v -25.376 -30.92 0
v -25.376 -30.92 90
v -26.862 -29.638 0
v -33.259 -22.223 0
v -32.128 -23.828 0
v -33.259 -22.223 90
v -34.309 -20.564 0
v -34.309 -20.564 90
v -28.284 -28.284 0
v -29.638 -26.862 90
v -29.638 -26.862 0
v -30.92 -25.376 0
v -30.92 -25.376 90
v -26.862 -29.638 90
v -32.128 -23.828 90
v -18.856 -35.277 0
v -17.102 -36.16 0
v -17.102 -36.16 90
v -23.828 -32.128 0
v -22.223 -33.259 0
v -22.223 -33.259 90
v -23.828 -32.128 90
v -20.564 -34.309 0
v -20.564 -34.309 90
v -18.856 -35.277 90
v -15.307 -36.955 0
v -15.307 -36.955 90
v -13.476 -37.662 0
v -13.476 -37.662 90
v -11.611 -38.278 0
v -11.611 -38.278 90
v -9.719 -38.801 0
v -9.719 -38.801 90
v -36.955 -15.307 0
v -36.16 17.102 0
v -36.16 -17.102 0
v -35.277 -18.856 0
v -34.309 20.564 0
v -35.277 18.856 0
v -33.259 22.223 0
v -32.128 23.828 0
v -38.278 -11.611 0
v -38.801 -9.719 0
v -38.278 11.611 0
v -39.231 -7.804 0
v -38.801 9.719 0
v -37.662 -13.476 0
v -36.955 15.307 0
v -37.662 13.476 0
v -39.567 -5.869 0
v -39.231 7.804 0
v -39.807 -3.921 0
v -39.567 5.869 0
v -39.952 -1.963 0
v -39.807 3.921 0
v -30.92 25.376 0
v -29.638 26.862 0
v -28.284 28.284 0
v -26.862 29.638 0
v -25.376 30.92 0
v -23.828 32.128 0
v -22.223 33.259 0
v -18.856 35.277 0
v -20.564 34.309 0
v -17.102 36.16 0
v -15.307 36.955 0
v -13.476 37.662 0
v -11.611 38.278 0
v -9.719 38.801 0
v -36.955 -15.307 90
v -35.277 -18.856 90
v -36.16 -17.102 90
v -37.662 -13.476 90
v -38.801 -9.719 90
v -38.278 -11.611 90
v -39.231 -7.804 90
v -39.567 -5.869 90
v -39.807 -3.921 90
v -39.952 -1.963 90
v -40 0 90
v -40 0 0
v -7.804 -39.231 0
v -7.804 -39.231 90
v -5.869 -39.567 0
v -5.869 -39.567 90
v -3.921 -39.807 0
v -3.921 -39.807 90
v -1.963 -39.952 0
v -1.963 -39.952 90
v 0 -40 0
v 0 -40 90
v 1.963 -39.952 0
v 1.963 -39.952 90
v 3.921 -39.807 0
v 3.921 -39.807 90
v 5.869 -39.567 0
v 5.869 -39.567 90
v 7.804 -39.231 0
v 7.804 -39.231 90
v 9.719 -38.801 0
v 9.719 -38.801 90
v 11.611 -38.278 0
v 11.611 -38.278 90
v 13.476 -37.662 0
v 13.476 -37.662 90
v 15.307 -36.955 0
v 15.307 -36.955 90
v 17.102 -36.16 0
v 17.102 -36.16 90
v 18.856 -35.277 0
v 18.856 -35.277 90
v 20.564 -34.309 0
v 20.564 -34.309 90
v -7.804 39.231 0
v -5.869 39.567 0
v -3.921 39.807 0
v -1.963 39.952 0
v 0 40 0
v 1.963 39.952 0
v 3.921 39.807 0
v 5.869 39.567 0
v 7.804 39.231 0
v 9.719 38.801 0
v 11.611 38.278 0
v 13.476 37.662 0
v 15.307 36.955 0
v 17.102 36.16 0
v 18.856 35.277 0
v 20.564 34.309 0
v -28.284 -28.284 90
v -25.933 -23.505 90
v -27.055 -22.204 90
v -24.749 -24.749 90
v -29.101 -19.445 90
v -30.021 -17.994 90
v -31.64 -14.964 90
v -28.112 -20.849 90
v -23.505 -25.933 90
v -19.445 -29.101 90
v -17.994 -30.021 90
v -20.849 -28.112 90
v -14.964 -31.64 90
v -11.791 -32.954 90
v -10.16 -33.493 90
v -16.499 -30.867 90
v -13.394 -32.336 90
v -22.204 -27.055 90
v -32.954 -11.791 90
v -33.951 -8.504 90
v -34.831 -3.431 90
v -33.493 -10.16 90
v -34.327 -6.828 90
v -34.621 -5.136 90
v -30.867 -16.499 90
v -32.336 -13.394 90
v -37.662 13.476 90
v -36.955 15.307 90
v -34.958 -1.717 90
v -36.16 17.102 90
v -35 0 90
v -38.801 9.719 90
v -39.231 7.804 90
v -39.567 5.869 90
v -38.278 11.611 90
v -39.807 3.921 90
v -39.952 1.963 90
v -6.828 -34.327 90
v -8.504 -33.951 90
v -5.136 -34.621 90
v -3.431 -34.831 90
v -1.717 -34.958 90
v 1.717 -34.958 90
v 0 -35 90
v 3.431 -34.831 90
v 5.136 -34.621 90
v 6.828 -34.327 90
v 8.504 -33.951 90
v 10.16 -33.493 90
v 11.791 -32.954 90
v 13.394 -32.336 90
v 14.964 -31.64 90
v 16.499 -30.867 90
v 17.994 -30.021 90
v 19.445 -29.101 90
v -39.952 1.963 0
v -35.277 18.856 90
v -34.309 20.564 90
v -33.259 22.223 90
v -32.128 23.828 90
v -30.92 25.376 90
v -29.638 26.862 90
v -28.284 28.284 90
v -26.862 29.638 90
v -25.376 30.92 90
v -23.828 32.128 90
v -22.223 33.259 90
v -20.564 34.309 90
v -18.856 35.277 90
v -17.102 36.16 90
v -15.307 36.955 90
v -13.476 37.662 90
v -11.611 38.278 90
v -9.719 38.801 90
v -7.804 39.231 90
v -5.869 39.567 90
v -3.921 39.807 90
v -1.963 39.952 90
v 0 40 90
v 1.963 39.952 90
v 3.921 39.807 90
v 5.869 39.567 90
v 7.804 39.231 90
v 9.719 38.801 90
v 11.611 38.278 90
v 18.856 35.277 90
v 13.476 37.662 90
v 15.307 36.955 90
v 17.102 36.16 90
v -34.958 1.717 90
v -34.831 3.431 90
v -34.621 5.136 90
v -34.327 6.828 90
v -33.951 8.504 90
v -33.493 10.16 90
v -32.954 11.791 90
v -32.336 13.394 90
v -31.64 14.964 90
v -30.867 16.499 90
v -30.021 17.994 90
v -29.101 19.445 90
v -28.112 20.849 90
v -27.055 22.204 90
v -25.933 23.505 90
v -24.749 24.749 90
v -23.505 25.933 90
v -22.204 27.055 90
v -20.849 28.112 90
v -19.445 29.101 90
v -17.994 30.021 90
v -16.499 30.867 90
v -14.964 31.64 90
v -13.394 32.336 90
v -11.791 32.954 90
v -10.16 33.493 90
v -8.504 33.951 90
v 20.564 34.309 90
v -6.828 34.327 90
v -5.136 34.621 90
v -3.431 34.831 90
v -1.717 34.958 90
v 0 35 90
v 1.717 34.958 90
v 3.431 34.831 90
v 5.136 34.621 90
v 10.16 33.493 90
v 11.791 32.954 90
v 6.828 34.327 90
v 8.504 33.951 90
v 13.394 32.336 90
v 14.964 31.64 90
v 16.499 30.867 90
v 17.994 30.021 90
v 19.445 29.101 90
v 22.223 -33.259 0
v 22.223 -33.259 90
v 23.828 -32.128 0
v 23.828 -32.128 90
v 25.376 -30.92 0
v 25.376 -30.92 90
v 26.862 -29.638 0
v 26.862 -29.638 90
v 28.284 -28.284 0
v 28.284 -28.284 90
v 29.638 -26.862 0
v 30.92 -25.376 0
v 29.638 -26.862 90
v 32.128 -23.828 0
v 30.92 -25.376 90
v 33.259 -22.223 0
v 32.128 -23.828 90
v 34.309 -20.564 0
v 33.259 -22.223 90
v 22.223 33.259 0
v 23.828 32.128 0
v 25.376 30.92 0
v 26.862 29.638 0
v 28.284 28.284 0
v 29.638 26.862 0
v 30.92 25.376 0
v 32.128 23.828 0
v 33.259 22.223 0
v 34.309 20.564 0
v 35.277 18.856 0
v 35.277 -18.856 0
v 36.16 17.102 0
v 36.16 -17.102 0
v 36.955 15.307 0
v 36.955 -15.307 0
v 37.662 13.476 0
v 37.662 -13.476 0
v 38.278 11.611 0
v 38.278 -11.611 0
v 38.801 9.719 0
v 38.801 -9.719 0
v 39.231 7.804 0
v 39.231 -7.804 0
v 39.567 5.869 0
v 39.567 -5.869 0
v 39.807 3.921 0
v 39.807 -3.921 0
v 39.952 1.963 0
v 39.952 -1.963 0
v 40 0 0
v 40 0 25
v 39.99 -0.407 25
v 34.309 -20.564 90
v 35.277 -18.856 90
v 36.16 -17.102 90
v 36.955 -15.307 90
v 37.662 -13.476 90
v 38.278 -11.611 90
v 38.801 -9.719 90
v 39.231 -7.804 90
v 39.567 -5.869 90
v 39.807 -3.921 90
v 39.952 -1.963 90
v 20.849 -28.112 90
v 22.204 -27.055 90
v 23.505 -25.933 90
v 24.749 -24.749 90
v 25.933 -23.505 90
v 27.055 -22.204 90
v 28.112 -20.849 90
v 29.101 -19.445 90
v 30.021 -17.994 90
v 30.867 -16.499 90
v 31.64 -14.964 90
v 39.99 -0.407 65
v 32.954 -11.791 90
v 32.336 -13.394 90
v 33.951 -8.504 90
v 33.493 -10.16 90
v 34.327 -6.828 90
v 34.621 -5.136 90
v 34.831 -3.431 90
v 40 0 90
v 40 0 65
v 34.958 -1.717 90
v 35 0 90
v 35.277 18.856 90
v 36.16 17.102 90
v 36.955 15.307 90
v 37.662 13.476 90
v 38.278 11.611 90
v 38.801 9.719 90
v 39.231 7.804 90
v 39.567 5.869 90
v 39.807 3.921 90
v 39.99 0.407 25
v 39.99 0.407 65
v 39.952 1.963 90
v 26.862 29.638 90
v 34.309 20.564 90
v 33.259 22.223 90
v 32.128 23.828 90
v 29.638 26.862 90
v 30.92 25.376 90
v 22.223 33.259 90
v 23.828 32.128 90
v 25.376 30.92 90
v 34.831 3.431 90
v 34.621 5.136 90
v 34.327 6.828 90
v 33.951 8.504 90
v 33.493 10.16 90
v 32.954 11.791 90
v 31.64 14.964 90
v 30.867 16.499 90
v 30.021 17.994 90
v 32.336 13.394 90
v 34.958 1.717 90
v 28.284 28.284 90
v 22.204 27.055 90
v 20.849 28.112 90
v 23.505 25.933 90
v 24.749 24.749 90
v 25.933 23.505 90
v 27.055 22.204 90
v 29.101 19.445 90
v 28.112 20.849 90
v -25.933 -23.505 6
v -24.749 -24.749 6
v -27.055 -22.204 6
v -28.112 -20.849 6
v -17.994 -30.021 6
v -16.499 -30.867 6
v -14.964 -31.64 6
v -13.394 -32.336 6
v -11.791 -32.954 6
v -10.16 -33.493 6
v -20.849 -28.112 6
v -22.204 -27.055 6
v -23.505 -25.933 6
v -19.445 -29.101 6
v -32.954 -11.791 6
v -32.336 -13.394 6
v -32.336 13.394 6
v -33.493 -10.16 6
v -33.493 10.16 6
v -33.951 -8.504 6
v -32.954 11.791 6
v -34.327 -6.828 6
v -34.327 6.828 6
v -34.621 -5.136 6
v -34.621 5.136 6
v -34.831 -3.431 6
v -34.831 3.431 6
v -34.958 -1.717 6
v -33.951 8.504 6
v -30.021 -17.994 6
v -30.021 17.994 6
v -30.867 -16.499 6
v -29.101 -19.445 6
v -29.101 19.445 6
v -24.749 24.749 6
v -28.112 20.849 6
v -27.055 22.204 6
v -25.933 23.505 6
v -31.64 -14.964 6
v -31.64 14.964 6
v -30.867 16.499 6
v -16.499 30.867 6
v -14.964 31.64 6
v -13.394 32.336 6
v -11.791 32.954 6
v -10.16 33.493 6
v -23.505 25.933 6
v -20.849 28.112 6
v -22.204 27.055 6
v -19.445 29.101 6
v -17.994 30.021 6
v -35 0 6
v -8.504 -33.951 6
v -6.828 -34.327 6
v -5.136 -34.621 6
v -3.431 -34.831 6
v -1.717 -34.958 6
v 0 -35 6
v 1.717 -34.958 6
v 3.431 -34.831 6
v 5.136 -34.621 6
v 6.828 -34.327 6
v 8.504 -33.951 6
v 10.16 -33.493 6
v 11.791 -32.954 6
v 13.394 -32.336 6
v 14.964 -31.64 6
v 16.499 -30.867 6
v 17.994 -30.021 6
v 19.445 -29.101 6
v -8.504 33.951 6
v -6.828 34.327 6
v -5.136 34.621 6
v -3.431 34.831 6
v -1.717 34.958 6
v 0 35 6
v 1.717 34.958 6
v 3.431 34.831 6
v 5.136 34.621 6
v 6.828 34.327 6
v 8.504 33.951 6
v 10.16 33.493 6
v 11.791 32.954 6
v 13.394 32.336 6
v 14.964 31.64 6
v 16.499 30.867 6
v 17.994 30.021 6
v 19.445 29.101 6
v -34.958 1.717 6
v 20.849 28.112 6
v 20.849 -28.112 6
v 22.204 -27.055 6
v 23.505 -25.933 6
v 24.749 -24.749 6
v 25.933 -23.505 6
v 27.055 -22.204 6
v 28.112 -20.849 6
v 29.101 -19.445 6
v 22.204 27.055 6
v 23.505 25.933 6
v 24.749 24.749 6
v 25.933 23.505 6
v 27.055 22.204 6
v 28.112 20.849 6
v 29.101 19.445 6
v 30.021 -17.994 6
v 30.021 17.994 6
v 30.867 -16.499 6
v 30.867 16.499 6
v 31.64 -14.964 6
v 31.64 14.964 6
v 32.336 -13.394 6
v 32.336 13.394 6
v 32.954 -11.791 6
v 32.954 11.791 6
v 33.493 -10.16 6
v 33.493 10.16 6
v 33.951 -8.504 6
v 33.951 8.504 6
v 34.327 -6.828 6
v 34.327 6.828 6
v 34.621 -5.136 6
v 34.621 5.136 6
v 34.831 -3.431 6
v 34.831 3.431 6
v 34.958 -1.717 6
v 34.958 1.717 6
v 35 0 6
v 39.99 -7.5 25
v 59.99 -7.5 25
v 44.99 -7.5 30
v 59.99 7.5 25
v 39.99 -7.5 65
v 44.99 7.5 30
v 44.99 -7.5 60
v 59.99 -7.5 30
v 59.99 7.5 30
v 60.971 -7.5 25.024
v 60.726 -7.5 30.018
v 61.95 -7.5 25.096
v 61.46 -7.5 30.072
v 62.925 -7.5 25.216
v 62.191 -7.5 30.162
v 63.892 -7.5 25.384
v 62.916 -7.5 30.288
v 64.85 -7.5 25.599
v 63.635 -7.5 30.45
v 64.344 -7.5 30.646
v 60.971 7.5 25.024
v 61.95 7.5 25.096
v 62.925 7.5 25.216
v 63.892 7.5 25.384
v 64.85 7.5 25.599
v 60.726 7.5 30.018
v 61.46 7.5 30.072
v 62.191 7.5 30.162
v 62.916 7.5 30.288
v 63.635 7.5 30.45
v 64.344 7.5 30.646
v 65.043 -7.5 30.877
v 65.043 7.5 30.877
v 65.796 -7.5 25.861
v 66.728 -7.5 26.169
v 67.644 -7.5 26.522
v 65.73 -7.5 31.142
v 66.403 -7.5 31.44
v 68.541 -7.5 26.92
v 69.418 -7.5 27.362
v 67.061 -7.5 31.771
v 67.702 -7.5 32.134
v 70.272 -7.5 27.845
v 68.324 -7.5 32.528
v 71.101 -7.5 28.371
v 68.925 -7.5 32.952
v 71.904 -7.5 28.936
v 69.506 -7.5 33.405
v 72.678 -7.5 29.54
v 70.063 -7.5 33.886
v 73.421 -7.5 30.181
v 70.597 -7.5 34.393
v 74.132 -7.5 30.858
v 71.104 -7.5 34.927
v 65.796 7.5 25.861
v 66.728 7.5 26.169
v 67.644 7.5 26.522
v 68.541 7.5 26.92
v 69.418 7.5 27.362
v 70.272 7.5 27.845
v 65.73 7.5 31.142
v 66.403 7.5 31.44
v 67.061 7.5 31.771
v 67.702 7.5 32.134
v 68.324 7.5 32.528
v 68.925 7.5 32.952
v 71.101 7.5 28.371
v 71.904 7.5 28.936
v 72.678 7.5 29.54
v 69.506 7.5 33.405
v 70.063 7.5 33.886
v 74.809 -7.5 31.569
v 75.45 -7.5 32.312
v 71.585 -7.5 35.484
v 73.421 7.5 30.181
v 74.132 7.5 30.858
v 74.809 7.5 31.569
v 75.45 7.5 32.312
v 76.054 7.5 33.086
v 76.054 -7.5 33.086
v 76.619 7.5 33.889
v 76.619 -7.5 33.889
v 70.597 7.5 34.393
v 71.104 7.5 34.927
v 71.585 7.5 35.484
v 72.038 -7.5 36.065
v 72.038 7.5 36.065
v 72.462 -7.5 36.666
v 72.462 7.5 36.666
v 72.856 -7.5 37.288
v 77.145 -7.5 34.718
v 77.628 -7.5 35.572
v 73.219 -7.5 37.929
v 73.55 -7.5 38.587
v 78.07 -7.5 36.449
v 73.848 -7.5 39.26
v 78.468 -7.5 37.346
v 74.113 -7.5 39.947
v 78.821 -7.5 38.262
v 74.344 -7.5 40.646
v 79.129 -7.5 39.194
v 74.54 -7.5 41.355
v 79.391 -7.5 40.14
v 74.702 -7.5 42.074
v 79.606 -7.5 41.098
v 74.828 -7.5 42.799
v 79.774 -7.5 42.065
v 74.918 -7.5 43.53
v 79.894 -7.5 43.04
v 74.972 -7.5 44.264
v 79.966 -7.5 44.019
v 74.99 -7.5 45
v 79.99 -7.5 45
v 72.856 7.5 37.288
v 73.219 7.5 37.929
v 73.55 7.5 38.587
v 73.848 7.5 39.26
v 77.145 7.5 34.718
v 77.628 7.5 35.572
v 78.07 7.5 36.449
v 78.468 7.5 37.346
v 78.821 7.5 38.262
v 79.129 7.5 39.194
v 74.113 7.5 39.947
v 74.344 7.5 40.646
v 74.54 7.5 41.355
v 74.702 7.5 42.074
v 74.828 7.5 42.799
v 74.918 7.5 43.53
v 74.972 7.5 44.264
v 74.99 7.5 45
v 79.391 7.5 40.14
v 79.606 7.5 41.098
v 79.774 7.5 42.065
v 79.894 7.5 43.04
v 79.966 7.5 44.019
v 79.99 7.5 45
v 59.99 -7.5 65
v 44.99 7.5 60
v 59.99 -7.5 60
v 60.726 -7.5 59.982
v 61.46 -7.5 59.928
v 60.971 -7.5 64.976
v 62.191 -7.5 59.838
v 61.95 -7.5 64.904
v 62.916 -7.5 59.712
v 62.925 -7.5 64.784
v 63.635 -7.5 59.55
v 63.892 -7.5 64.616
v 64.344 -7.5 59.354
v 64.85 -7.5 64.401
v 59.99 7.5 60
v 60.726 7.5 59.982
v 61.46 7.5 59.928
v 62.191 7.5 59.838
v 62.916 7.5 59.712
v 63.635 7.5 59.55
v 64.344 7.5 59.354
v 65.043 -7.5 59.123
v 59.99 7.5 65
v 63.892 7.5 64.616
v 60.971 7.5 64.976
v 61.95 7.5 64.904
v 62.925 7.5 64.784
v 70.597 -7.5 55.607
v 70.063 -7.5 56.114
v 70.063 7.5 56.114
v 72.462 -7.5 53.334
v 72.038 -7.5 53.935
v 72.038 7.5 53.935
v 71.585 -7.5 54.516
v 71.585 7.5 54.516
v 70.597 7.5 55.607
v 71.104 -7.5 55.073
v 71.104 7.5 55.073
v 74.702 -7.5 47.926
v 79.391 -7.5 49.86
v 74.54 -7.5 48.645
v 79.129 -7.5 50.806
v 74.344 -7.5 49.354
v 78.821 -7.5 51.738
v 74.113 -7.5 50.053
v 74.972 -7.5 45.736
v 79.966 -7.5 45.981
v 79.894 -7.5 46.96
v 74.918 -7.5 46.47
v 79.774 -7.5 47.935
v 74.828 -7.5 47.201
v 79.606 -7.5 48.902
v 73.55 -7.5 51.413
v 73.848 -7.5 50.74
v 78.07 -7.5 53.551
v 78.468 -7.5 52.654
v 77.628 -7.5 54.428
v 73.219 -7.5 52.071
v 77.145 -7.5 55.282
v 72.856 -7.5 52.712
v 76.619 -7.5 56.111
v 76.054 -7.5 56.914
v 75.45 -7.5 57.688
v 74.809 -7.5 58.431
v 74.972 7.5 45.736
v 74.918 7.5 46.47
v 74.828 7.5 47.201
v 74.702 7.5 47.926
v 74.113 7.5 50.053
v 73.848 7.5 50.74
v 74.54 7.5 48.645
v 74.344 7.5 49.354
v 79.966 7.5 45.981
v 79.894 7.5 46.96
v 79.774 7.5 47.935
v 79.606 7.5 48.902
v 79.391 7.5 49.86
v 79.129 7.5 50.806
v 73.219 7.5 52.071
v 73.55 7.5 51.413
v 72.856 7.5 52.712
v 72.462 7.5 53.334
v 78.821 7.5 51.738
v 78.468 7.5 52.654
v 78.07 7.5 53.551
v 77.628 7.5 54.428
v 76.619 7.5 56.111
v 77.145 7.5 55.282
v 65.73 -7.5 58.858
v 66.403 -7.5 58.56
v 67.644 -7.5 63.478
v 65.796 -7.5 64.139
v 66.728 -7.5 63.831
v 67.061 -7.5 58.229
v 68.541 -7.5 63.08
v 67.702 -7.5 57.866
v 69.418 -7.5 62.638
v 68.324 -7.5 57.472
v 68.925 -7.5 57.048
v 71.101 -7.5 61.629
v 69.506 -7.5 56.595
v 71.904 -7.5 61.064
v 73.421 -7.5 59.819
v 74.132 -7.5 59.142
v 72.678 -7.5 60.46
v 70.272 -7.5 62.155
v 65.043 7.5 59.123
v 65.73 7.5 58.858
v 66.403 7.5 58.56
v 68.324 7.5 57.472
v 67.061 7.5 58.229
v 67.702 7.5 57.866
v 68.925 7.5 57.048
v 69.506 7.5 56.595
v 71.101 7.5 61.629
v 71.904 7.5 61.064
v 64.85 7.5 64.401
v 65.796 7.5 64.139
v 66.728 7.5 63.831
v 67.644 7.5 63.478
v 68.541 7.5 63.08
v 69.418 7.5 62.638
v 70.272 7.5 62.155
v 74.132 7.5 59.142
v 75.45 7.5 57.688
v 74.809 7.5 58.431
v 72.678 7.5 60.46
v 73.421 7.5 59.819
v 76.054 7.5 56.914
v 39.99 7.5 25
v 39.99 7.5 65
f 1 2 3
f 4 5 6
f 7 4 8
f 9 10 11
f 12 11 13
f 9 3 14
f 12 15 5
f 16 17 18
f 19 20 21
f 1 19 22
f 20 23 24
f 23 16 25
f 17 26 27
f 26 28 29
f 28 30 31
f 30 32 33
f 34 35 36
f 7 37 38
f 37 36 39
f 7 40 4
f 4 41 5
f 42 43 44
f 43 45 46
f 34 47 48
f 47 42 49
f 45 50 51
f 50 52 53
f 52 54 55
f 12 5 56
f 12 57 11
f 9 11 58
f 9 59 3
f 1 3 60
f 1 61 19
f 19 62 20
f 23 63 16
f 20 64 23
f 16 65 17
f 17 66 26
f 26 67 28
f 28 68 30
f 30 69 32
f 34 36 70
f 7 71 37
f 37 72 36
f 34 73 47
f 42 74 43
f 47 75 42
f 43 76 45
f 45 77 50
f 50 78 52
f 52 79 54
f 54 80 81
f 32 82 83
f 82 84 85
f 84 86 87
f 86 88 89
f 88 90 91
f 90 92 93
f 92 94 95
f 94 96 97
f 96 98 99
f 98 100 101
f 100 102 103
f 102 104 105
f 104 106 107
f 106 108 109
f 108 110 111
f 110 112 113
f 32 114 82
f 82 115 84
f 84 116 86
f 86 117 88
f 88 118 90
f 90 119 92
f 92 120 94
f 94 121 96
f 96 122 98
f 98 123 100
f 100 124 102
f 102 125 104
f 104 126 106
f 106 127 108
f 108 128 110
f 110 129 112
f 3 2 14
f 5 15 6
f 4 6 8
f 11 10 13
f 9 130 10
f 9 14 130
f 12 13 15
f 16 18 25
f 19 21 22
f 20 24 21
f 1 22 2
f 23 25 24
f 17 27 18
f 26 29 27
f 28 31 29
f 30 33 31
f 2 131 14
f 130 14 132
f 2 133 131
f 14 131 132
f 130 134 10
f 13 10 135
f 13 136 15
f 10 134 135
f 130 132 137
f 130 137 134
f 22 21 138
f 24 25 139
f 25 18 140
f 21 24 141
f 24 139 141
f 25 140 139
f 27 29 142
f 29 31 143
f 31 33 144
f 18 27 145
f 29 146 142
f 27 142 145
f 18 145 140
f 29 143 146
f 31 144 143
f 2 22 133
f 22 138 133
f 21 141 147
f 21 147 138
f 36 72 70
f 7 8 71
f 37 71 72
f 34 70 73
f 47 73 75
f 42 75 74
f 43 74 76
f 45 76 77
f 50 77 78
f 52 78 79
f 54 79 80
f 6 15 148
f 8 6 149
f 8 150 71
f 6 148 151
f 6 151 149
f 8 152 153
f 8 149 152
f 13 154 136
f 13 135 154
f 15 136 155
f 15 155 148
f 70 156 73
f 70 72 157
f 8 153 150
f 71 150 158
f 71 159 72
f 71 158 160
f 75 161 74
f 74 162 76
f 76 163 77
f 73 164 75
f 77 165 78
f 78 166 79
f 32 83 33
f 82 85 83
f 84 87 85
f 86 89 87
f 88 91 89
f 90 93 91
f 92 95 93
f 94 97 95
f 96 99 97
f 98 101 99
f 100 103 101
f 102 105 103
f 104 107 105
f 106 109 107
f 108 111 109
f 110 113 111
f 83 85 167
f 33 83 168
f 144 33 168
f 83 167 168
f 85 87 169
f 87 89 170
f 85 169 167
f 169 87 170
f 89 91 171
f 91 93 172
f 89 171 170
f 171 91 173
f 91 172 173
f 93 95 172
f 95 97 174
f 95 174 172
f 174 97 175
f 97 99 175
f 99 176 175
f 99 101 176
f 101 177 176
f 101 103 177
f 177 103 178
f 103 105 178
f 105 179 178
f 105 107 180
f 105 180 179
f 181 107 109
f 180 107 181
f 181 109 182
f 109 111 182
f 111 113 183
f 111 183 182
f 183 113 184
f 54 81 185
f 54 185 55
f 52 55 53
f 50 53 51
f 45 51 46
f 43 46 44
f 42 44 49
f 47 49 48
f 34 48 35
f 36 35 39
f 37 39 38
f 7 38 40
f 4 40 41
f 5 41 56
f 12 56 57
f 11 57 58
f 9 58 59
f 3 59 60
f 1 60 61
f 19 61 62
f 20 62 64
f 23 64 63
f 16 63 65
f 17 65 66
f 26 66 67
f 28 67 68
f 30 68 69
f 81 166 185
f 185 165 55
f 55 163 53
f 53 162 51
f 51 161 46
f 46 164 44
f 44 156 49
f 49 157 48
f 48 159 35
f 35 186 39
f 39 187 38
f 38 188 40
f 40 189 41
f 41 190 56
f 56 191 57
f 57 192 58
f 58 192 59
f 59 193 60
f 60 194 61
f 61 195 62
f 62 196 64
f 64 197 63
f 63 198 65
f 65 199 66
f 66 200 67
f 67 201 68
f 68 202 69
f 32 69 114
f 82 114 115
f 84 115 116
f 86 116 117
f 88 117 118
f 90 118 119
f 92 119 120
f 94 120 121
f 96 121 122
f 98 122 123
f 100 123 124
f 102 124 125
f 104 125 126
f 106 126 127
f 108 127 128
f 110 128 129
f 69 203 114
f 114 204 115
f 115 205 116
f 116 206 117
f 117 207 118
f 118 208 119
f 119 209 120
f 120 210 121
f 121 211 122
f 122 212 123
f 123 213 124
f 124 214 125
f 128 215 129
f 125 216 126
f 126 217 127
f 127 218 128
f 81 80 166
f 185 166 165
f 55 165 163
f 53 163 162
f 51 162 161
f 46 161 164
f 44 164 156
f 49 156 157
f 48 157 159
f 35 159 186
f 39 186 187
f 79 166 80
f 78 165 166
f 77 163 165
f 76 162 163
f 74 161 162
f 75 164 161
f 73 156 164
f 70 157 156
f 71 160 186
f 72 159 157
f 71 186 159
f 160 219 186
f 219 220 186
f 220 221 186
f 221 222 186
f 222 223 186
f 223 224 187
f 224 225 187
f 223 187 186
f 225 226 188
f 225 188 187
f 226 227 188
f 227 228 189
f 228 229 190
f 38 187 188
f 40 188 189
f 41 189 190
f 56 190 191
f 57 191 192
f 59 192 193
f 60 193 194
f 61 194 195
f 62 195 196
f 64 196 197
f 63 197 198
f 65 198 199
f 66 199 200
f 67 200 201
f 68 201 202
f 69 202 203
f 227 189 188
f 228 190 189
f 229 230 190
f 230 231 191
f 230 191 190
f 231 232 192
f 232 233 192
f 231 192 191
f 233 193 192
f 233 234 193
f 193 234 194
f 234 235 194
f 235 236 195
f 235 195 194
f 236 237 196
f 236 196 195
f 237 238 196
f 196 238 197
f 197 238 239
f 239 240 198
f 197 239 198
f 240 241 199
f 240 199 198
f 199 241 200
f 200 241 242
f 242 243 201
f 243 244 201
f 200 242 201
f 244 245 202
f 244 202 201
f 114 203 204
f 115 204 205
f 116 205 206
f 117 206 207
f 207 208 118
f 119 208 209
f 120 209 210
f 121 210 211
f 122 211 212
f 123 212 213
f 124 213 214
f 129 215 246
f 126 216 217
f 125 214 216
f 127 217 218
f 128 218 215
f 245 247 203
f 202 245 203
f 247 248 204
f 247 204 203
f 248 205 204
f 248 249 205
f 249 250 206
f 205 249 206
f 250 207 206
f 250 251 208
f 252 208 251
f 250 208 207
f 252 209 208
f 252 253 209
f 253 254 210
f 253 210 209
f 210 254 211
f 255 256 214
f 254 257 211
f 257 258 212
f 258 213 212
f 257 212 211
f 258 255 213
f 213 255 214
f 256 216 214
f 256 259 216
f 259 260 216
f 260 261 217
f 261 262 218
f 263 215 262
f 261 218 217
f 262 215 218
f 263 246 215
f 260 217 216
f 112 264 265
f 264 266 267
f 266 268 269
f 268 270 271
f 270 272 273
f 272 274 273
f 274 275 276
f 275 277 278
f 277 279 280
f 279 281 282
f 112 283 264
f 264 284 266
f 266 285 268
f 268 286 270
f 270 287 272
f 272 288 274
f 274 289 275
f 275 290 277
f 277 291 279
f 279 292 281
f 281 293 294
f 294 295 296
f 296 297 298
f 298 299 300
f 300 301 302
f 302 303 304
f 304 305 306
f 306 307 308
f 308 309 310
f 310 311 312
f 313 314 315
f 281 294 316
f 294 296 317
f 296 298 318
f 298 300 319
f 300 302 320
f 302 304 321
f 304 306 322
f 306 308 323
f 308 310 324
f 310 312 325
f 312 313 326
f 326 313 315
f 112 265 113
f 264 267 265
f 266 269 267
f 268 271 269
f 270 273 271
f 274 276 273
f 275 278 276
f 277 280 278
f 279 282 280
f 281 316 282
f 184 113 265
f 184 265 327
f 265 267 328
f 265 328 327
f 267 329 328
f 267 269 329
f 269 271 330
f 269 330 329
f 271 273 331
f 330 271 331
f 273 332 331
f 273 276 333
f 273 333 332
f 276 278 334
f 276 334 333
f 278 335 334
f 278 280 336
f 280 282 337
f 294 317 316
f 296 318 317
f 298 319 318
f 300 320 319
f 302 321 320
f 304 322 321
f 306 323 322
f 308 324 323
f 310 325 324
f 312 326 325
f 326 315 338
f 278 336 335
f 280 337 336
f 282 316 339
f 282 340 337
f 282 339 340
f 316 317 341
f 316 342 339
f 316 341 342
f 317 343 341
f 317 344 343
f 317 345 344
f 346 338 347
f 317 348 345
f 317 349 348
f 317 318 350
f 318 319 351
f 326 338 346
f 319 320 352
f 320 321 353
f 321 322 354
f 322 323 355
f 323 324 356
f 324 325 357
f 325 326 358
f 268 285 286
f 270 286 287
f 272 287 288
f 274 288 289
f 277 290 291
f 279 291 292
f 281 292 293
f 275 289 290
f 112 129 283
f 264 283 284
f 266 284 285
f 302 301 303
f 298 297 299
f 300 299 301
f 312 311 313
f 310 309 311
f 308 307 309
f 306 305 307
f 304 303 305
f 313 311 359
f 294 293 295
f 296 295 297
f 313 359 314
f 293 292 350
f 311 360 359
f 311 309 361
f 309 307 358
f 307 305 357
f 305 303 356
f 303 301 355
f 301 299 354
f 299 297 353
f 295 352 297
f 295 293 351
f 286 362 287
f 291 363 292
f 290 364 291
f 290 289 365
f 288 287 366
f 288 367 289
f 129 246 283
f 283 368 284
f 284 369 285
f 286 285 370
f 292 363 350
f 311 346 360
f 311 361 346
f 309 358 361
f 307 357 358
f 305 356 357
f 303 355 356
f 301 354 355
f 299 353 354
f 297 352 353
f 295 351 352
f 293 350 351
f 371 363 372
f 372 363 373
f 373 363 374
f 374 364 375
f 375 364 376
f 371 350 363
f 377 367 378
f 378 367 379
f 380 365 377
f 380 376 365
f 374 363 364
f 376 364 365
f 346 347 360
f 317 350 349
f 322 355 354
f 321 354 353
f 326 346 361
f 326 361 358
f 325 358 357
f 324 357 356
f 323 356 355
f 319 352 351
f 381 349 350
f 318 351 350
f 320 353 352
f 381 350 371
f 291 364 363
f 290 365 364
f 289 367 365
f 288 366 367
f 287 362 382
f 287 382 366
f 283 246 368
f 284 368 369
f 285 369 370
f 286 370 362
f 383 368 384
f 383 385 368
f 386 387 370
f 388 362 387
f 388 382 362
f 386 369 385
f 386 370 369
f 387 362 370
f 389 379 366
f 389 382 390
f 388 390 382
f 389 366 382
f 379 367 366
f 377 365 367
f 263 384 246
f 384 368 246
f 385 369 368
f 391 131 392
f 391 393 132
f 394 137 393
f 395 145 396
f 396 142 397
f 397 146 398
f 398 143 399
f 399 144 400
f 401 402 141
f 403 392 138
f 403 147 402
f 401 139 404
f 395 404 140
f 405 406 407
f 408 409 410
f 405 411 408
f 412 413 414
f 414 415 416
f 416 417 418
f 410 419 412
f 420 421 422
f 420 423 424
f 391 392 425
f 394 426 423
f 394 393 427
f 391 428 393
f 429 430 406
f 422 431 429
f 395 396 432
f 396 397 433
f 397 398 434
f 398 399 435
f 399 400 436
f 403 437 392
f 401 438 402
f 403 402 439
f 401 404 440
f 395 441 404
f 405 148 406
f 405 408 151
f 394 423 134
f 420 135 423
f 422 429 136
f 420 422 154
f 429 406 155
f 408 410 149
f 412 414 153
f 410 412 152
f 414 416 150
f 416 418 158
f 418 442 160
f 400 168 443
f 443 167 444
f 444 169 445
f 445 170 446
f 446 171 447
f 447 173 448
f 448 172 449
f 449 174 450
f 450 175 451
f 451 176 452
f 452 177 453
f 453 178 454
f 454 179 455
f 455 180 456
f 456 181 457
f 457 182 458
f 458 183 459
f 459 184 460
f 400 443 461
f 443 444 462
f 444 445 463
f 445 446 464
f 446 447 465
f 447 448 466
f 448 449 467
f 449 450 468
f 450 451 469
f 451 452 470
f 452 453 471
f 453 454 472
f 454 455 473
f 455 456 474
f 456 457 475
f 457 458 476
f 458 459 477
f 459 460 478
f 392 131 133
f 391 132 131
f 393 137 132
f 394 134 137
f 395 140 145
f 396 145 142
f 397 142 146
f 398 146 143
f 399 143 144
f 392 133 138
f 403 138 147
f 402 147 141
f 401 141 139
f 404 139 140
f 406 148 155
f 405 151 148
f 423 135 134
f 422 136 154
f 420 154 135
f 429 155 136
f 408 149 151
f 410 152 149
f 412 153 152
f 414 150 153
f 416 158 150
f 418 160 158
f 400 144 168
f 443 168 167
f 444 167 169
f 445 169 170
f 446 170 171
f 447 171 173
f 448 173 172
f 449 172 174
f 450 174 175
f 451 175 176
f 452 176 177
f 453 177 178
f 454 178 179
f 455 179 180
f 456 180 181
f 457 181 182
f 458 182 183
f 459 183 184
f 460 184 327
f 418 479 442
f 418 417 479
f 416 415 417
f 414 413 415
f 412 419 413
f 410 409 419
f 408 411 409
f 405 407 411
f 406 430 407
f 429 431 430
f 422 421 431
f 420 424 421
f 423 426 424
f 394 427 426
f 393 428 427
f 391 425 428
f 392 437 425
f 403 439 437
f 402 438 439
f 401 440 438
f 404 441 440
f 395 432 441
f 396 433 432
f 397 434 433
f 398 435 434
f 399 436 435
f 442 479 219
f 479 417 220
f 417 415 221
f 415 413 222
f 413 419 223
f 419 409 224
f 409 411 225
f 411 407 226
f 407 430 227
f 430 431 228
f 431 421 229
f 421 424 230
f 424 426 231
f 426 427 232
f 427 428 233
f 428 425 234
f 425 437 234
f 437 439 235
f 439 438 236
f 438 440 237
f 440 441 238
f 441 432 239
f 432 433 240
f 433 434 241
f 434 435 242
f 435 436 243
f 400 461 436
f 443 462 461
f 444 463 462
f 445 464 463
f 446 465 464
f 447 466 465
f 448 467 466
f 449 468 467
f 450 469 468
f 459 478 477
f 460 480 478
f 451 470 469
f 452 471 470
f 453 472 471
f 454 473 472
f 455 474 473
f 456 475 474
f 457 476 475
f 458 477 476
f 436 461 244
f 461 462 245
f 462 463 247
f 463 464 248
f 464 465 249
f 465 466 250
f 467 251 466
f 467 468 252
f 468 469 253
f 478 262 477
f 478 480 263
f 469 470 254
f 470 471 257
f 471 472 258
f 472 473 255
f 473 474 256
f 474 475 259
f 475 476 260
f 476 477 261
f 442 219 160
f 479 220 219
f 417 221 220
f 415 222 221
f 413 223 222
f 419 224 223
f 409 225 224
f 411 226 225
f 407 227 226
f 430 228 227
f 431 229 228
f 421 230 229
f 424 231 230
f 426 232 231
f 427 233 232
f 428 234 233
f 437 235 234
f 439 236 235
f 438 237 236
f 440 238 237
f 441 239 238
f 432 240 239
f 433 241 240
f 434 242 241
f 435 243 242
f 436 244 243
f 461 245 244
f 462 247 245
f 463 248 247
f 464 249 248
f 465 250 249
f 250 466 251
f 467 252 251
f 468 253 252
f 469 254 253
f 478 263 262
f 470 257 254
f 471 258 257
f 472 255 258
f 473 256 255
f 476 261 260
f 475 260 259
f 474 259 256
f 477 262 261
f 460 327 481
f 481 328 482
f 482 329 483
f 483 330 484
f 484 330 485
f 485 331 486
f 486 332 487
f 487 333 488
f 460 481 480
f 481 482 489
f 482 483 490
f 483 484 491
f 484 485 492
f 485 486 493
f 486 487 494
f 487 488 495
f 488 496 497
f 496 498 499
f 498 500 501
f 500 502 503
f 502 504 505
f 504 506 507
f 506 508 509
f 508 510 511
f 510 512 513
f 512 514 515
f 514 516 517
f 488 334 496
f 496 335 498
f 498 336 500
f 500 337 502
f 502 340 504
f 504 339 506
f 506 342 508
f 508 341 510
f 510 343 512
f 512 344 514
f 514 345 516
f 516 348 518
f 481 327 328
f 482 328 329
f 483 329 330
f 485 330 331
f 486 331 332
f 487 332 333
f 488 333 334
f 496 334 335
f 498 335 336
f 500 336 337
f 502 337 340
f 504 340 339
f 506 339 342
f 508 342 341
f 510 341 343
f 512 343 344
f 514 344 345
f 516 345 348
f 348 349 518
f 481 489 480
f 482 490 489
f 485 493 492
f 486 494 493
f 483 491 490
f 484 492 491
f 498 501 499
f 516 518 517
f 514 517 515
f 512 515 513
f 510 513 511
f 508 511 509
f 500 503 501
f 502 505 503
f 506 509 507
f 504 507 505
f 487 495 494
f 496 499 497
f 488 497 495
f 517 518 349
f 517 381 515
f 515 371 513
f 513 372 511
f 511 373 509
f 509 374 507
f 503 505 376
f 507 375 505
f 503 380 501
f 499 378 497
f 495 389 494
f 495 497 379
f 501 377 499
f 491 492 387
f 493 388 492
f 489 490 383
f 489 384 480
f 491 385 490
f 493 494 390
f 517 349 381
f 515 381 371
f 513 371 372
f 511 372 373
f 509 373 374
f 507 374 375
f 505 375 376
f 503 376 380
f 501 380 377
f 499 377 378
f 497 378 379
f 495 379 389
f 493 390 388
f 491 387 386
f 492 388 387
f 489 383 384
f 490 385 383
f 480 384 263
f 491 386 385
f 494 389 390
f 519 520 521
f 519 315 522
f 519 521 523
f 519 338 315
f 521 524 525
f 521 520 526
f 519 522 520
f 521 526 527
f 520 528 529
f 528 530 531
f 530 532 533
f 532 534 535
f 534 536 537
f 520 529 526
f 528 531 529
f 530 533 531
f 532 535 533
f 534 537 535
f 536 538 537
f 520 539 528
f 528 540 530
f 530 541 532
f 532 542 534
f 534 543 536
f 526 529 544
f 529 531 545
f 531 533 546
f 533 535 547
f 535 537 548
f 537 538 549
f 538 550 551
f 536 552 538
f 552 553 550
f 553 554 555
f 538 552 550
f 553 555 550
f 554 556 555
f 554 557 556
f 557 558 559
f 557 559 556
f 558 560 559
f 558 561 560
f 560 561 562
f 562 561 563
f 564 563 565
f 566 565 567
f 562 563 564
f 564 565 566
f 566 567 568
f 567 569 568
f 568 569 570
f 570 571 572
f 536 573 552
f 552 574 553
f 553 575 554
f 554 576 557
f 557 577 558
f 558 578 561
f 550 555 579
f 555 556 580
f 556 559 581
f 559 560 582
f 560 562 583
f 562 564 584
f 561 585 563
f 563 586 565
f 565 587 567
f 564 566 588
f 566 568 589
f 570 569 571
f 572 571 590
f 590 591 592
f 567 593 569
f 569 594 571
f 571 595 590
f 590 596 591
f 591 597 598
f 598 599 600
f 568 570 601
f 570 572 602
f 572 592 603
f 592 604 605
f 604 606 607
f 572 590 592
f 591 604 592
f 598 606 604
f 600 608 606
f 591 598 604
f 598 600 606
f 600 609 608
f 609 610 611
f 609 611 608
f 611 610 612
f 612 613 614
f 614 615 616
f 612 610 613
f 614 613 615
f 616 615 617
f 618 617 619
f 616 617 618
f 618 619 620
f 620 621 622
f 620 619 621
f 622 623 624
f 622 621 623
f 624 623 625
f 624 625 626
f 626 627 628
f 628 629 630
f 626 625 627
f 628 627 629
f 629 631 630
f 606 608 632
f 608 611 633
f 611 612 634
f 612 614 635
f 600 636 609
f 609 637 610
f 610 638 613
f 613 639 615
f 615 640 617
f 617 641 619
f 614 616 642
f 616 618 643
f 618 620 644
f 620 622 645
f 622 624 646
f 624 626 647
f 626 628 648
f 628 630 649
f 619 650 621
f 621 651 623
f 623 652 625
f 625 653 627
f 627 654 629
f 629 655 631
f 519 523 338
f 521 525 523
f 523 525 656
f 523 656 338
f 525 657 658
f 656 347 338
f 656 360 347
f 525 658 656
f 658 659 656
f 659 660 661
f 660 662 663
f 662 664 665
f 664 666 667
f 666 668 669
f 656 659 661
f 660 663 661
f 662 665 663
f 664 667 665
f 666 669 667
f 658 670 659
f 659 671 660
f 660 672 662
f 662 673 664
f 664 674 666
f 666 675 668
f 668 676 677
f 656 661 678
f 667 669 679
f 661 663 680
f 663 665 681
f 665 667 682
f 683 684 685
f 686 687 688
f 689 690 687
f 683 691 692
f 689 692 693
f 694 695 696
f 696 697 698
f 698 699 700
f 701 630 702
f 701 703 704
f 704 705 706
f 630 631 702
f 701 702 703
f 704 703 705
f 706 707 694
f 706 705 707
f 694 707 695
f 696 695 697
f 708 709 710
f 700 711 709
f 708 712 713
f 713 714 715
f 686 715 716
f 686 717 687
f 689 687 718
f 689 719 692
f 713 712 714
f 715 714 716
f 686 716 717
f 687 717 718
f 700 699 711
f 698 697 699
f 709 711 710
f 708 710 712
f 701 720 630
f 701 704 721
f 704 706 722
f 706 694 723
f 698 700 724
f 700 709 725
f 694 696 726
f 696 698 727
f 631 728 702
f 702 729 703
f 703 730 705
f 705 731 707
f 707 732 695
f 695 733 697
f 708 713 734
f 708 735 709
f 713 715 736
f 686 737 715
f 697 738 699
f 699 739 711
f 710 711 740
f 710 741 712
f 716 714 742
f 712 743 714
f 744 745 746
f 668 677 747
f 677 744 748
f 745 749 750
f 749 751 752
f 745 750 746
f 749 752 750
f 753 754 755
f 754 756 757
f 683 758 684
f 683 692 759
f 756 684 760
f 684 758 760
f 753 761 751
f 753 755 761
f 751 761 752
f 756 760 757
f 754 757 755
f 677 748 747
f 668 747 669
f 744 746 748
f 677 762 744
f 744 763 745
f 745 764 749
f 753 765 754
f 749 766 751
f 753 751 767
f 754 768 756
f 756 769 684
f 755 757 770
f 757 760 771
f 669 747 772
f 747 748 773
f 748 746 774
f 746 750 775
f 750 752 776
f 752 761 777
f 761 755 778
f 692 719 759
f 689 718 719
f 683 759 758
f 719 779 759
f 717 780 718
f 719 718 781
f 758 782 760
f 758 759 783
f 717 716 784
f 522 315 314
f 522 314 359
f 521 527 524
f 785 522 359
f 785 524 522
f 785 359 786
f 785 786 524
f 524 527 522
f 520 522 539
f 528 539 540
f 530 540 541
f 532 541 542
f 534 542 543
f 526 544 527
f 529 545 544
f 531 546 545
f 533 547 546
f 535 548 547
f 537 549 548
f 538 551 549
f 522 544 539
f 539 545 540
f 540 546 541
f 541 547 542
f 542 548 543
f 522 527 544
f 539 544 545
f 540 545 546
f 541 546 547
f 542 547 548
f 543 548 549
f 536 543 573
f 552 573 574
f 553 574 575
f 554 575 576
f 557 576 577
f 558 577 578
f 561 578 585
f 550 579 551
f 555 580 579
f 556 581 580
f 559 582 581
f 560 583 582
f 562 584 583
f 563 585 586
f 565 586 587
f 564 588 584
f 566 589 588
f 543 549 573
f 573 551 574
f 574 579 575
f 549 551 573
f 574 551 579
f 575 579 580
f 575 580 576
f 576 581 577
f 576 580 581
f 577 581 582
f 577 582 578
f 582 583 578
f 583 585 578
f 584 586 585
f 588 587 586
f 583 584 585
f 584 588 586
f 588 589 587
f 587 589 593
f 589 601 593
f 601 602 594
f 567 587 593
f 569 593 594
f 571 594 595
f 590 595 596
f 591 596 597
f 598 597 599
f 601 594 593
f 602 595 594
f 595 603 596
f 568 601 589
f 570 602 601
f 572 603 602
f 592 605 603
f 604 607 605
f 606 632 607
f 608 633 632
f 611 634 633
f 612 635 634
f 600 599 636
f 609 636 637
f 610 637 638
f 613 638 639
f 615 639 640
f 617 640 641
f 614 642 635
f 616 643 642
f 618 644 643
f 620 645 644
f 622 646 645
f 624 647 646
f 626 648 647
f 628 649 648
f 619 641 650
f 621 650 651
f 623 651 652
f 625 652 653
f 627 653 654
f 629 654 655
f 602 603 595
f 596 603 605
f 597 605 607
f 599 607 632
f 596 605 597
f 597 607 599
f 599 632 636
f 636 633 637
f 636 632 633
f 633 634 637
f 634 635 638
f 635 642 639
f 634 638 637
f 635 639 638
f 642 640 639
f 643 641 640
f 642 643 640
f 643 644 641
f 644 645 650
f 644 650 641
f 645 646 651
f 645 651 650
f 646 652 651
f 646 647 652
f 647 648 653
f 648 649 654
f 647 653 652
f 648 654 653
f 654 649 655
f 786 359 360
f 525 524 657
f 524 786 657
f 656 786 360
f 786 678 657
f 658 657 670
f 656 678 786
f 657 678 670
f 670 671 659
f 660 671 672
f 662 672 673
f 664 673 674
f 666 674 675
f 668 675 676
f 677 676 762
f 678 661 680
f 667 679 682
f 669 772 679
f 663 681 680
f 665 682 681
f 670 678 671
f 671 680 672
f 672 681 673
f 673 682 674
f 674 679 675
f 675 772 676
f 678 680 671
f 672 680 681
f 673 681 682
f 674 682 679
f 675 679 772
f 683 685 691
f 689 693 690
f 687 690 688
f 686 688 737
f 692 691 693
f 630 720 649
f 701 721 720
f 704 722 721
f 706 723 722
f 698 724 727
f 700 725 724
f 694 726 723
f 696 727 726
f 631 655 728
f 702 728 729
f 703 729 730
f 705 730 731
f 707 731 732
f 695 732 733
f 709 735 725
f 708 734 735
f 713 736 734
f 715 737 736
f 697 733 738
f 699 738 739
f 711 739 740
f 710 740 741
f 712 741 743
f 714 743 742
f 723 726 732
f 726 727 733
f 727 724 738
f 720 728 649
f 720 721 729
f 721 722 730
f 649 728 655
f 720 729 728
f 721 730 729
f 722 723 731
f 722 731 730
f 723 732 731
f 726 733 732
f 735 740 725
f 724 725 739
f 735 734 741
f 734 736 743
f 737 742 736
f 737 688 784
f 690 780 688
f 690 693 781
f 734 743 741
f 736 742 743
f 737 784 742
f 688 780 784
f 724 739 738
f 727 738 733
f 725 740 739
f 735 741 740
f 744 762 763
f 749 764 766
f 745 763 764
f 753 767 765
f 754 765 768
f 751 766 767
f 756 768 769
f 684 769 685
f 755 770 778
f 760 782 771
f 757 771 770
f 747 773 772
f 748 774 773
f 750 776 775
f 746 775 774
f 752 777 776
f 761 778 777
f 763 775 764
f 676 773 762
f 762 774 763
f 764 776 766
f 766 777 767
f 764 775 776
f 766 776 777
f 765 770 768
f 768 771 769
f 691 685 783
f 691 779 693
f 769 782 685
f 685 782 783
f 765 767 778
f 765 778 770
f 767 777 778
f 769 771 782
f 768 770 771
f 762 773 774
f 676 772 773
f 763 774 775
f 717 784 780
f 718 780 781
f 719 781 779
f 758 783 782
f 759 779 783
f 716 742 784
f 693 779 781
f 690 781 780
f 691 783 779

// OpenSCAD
// Mug with oriented handle
$fn = 128;

// ----------------- Parameters -----------------
mug_outer_d       = 80;   // mm
mug_inner_d       = 70;   // mm
mug_height        = 90;   // mm
bottom_thickness  = 6;    // mm

handle_inner_h    = 30;   // mm (vertical opening)
handle_inner_w    = 25;   // mm (radial opening)
handle_wall       = 5;    // mm (handle thickness)
handle_depth      = 15;   // mm (depth along Y)

// ------------------------------------------------
mug_outer_r  = mug_outer_d/2;
mug_inner_r  = mug_inner_d/2;

handle_outer_h = handle_inner_h + 2*handle_wall;   // 40 mm
handle_outer_r = handle_outer_h/2;                 // 20 mm
handle_inner_r = handle_inner_h/2;                 // 15 mm

// ----------------- Modules -----------------
module mug_body(){
    difference(){
        cylinder(h = mug_height, r = mug_outer_r, center = false);
        translate([0,0,bottom_thickness])
            cylinder(h = mug_height - bottom_thickness, r = mug_inner_r, center = false);
    }
}

module handle_outer_2d(){
    union(){
        // semicircle
        translate([handle_outer_r,0])
            circle(r = handle_outer_r);
        // rectangle joining to straight side
        translate([0,-handle_outer_r])
            square([handle_outer_r, handle_outer_h]);
    }
}

module handle_inner_2d(){
    union(){
        translate([handle_wall + handle_inner_r,0])
            circle(r = handle_inner_r);
        translate([handle_wall,-handle_inner_r])
            square([handle_inner_r, handle_inner_h]);
    }
}

module handle(){
    // Build 2D D-shape and extrude, then rotate so Z is vertical
    rotate([90,0,0])
        linear_extrude(height = handle_depth, center = true)
            difference(){
                handle_outer_2d();
                handle_inner_2d();
            }
}

// ----------------- Assembly -----------------
union(){
    mug_body();
    // Position handle on +X side, centered in height
    translate([mug_outer_r - 0.01, 0, mug_height/2])
        handle();
}
